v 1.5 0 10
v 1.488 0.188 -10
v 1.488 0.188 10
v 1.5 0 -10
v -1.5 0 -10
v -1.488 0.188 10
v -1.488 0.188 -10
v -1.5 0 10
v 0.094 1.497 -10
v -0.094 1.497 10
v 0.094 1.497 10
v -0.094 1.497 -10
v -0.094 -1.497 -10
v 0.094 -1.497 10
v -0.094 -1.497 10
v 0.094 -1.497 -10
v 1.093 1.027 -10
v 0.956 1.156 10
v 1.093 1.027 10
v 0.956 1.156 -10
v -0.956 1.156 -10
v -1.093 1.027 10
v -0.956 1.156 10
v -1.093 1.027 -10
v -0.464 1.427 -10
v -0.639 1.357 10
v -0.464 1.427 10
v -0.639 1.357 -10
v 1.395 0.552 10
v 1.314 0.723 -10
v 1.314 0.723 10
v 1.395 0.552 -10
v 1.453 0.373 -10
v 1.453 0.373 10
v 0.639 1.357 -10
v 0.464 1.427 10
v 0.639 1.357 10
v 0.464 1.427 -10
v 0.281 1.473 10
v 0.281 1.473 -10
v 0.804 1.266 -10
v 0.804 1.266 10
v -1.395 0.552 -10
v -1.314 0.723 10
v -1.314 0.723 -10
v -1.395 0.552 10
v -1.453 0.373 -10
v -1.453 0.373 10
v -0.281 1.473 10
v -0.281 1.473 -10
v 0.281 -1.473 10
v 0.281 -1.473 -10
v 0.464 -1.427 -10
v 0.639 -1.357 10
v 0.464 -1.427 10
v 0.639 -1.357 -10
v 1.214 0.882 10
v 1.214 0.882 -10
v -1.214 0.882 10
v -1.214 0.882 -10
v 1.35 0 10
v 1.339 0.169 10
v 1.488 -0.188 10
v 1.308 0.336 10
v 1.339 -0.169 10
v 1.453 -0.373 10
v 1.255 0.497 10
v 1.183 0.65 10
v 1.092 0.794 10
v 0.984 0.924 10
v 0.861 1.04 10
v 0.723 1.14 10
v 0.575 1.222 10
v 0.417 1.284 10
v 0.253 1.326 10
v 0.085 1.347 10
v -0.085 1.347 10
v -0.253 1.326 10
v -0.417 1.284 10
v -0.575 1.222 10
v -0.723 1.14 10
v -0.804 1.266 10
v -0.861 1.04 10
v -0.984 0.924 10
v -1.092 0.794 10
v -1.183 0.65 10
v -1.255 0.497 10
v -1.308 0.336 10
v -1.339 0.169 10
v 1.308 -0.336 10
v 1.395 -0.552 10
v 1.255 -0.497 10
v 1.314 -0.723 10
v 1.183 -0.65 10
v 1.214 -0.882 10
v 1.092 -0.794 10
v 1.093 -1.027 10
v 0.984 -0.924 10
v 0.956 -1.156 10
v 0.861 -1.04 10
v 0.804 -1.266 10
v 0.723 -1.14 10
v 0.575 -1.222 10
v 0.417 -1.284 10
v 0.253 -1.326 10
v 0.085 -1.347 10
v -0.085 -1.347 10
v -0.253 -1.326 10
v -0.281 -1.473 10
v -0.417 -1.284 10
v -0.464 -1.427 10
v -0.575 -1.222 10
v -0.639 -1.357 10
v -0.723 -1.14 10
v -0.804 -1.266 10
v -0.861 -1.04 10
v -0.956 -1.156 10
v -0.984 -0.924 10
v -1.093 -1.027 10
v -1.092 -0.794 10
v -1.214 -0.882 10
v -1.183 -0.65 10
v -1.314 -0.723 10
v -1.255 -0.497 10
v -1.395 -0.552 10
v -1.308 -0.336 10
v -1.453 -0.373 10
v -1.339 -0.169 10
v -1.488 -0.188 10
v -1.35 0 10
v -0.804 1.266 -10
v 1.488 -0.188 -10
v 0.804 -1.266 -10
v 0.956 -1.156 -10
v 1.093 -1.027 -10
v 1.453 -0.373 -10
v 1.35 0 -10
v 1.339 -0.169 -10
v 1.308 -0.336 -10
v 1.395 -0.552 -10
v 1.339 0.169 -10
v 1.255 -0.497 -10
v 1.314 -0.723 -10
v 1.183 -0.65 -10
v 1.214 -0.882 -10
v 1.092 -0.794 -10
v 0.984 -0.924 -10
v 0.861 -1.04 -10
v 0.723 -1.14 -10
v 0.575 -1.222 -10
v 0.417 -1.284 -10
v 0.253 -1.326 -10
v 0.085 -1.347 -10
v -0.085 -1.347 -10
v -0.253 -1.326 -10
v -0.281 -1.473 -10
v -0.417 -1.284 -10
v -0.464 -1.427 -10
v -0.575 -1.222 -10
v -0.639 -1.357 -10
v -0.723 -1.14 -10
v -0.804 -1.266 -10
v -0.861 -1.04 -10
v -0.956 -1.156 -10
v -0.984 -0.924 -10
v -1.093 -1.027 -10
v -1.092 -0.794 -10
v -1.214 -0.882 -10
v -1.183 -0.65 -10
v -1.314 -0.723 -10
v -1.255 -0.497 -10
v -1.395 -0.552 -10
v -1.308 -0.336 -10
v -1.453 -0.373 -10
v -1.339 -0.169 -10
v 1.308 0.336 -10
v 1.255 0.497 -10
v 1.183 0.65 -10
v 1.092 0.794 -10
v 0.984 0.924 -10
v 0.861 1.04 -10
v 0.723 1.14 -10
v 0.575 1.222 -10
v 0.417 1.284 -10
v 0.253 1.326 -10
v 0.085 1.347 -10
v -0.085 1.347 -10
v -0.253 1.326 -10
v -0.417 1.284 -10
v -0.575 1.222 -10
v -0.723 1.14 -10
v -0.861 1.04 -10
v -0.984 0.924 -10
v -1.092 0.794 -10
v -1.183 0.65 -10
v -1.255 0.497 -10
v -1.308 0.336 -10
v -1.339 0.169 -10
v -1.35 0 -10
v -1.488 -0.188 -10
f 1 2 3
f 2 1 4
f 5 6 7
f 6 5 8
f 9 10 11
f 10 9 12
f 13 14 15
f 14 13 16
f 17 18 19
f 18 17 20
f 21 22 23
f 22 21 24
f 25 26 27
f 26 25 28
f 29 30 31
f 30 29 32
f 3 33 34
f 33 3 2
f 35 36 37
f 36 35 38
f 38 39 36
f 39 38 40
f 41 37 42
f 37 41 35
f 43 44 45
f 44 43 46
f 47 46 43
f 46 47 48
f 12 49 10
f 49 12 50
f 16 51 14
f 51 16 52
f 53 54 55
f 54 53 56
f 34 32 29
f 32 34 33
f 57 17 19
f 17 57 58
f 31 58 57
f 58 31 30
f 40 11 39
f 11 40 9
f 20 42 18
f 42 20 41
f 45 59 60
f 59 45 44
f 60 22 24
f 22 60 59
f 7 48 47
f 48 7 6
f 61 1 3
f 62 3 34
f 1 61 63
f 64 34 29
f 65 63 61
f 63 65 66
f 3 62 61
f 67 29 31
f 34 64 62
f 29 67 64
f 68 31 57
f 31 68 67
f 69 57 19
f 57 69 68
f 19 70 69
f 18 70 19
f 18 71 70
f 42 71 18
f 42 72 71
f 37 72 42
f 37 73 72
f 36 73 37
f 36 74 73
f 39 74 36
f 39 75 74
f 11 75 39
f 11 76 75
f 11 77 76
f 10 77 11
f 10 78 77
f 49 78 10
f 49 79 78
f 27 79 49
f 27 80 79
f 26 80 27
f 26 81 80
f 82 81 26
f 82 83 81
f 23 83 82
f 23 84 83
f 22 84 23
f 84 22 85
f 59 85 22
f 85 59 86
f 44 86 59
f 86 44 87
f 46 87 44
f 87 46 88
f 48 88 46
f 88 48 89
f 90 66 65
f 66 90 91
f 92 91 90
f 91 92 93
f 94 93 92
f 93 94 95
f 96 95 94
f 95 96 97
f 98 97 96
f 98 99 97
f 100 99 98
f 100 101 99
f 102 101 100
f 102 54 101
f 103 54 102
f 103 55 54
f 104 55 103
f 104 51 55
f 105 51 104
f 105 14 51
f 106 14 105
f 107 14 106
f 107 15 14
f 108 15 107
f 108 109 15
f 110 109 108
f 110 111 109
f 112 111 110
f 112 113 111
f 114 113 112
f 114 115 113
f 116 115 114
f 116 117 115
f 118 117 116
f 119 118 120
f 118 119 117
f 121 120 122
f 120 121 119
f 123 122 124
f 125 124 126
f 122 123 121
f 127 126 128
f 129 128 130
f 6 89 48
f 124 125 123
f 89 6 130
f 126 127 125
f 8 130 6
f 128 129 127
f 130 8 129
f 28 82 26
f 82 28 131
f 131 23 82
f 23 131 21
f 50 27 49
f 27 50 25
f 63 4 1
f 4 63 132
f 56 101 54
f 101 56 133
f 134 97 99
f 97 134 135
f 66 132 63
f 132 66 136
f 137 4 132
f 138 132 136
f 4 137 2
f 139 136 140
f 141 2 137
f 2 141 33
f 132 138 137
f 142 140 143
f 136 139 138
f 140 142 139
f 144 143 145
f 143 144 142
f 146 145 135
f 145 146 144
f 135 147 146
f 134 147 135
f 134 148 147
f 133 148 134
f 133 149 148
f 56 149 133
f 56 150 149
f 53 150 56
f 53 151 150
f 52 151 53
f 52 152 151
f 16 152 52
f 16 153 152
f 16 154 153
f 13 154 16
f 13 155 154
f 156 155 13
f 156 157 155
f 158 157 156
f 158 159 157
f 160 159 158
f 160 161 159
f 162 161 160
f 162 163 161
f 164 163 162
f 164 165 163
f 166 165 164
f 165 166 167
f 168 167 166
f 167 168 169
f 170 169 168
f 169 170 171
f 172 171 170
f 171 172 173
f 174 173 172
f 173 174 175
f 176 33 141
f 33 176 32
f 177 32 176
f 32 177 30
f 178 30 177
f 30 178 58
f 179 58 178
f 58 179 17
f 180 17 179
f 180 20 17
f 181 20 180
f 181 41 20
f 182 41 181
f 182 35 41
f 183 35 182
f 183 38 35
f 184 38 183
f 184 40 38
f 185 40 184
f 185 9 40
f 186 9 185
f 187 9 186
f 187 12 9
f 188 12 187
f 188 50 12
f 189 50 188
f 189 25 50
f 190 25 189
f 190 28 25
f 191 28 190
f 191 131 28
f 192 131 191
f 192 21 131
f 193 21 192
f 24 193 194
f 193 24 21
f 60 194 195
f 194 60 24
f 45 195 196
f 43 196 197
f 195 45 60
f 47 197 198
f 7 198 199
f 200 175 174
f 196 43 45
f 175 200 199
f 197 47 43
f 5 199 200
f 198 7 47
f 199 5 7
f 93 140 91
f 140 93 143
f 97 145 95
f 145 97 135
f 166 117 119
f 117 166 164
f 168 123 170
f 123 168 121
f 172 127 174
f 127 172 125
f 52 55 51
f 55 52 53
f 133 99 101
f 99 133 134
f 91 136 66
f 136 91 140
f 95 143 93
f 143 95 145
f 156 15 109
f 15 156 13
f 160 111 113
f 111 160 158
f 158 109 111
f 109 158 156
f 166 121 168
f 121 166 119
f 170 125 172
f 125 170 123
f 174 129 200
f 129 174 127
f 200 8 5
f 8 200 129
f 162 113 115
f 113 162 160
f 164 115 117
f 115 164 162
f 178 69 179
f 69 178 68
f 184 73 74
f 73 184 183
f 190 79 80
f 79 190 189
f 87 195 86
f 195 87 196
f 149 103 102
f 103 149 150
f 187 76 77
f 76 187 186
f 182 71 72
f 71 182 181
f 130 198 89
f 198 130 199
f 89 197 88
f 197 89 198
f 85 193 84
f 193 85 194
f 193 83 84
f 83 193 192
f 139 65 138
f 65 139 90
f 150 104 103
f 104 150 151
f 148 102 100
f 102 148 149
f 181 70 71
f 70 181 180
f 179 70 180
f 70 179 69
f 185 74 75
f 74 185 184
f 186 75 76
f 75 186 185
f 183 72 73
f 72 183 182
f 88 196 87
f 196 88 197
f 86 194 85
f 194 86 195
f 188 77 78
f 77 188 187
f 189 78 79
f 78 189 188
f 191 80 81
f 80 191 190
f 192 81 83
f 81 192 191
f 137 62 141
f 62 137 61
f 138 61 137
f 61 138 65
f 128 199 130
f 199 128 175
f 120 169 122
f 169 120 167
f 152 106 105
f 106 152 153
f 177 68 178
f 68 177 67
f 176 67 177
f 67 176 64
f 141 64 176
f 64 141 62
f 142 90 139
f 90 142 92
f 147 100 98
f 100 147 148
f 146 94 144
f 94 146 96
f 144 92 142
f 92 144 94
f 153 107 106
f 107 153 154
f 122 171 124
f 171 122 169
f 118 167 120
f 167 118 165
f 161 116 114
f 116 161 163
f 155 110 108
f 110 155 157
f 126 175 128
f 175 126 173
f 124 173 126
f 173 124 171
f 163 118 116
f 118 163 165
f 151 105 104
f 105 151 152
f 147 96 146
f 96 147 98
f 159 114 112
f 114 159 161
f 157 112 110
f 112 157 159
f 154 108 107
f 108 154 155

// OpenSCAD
$fn = 50;


difference() {
	union() {
		translate(v = [0, 0, -10.0000000000]) {
			cylinder(h = 20, r = 1.5000000000);
		}
	}
	union() {
		translate(v = [0, 0, -100.0000000000]) {
			cylinder(h = 200, r = 1.3500000000);
		}
	}
}
